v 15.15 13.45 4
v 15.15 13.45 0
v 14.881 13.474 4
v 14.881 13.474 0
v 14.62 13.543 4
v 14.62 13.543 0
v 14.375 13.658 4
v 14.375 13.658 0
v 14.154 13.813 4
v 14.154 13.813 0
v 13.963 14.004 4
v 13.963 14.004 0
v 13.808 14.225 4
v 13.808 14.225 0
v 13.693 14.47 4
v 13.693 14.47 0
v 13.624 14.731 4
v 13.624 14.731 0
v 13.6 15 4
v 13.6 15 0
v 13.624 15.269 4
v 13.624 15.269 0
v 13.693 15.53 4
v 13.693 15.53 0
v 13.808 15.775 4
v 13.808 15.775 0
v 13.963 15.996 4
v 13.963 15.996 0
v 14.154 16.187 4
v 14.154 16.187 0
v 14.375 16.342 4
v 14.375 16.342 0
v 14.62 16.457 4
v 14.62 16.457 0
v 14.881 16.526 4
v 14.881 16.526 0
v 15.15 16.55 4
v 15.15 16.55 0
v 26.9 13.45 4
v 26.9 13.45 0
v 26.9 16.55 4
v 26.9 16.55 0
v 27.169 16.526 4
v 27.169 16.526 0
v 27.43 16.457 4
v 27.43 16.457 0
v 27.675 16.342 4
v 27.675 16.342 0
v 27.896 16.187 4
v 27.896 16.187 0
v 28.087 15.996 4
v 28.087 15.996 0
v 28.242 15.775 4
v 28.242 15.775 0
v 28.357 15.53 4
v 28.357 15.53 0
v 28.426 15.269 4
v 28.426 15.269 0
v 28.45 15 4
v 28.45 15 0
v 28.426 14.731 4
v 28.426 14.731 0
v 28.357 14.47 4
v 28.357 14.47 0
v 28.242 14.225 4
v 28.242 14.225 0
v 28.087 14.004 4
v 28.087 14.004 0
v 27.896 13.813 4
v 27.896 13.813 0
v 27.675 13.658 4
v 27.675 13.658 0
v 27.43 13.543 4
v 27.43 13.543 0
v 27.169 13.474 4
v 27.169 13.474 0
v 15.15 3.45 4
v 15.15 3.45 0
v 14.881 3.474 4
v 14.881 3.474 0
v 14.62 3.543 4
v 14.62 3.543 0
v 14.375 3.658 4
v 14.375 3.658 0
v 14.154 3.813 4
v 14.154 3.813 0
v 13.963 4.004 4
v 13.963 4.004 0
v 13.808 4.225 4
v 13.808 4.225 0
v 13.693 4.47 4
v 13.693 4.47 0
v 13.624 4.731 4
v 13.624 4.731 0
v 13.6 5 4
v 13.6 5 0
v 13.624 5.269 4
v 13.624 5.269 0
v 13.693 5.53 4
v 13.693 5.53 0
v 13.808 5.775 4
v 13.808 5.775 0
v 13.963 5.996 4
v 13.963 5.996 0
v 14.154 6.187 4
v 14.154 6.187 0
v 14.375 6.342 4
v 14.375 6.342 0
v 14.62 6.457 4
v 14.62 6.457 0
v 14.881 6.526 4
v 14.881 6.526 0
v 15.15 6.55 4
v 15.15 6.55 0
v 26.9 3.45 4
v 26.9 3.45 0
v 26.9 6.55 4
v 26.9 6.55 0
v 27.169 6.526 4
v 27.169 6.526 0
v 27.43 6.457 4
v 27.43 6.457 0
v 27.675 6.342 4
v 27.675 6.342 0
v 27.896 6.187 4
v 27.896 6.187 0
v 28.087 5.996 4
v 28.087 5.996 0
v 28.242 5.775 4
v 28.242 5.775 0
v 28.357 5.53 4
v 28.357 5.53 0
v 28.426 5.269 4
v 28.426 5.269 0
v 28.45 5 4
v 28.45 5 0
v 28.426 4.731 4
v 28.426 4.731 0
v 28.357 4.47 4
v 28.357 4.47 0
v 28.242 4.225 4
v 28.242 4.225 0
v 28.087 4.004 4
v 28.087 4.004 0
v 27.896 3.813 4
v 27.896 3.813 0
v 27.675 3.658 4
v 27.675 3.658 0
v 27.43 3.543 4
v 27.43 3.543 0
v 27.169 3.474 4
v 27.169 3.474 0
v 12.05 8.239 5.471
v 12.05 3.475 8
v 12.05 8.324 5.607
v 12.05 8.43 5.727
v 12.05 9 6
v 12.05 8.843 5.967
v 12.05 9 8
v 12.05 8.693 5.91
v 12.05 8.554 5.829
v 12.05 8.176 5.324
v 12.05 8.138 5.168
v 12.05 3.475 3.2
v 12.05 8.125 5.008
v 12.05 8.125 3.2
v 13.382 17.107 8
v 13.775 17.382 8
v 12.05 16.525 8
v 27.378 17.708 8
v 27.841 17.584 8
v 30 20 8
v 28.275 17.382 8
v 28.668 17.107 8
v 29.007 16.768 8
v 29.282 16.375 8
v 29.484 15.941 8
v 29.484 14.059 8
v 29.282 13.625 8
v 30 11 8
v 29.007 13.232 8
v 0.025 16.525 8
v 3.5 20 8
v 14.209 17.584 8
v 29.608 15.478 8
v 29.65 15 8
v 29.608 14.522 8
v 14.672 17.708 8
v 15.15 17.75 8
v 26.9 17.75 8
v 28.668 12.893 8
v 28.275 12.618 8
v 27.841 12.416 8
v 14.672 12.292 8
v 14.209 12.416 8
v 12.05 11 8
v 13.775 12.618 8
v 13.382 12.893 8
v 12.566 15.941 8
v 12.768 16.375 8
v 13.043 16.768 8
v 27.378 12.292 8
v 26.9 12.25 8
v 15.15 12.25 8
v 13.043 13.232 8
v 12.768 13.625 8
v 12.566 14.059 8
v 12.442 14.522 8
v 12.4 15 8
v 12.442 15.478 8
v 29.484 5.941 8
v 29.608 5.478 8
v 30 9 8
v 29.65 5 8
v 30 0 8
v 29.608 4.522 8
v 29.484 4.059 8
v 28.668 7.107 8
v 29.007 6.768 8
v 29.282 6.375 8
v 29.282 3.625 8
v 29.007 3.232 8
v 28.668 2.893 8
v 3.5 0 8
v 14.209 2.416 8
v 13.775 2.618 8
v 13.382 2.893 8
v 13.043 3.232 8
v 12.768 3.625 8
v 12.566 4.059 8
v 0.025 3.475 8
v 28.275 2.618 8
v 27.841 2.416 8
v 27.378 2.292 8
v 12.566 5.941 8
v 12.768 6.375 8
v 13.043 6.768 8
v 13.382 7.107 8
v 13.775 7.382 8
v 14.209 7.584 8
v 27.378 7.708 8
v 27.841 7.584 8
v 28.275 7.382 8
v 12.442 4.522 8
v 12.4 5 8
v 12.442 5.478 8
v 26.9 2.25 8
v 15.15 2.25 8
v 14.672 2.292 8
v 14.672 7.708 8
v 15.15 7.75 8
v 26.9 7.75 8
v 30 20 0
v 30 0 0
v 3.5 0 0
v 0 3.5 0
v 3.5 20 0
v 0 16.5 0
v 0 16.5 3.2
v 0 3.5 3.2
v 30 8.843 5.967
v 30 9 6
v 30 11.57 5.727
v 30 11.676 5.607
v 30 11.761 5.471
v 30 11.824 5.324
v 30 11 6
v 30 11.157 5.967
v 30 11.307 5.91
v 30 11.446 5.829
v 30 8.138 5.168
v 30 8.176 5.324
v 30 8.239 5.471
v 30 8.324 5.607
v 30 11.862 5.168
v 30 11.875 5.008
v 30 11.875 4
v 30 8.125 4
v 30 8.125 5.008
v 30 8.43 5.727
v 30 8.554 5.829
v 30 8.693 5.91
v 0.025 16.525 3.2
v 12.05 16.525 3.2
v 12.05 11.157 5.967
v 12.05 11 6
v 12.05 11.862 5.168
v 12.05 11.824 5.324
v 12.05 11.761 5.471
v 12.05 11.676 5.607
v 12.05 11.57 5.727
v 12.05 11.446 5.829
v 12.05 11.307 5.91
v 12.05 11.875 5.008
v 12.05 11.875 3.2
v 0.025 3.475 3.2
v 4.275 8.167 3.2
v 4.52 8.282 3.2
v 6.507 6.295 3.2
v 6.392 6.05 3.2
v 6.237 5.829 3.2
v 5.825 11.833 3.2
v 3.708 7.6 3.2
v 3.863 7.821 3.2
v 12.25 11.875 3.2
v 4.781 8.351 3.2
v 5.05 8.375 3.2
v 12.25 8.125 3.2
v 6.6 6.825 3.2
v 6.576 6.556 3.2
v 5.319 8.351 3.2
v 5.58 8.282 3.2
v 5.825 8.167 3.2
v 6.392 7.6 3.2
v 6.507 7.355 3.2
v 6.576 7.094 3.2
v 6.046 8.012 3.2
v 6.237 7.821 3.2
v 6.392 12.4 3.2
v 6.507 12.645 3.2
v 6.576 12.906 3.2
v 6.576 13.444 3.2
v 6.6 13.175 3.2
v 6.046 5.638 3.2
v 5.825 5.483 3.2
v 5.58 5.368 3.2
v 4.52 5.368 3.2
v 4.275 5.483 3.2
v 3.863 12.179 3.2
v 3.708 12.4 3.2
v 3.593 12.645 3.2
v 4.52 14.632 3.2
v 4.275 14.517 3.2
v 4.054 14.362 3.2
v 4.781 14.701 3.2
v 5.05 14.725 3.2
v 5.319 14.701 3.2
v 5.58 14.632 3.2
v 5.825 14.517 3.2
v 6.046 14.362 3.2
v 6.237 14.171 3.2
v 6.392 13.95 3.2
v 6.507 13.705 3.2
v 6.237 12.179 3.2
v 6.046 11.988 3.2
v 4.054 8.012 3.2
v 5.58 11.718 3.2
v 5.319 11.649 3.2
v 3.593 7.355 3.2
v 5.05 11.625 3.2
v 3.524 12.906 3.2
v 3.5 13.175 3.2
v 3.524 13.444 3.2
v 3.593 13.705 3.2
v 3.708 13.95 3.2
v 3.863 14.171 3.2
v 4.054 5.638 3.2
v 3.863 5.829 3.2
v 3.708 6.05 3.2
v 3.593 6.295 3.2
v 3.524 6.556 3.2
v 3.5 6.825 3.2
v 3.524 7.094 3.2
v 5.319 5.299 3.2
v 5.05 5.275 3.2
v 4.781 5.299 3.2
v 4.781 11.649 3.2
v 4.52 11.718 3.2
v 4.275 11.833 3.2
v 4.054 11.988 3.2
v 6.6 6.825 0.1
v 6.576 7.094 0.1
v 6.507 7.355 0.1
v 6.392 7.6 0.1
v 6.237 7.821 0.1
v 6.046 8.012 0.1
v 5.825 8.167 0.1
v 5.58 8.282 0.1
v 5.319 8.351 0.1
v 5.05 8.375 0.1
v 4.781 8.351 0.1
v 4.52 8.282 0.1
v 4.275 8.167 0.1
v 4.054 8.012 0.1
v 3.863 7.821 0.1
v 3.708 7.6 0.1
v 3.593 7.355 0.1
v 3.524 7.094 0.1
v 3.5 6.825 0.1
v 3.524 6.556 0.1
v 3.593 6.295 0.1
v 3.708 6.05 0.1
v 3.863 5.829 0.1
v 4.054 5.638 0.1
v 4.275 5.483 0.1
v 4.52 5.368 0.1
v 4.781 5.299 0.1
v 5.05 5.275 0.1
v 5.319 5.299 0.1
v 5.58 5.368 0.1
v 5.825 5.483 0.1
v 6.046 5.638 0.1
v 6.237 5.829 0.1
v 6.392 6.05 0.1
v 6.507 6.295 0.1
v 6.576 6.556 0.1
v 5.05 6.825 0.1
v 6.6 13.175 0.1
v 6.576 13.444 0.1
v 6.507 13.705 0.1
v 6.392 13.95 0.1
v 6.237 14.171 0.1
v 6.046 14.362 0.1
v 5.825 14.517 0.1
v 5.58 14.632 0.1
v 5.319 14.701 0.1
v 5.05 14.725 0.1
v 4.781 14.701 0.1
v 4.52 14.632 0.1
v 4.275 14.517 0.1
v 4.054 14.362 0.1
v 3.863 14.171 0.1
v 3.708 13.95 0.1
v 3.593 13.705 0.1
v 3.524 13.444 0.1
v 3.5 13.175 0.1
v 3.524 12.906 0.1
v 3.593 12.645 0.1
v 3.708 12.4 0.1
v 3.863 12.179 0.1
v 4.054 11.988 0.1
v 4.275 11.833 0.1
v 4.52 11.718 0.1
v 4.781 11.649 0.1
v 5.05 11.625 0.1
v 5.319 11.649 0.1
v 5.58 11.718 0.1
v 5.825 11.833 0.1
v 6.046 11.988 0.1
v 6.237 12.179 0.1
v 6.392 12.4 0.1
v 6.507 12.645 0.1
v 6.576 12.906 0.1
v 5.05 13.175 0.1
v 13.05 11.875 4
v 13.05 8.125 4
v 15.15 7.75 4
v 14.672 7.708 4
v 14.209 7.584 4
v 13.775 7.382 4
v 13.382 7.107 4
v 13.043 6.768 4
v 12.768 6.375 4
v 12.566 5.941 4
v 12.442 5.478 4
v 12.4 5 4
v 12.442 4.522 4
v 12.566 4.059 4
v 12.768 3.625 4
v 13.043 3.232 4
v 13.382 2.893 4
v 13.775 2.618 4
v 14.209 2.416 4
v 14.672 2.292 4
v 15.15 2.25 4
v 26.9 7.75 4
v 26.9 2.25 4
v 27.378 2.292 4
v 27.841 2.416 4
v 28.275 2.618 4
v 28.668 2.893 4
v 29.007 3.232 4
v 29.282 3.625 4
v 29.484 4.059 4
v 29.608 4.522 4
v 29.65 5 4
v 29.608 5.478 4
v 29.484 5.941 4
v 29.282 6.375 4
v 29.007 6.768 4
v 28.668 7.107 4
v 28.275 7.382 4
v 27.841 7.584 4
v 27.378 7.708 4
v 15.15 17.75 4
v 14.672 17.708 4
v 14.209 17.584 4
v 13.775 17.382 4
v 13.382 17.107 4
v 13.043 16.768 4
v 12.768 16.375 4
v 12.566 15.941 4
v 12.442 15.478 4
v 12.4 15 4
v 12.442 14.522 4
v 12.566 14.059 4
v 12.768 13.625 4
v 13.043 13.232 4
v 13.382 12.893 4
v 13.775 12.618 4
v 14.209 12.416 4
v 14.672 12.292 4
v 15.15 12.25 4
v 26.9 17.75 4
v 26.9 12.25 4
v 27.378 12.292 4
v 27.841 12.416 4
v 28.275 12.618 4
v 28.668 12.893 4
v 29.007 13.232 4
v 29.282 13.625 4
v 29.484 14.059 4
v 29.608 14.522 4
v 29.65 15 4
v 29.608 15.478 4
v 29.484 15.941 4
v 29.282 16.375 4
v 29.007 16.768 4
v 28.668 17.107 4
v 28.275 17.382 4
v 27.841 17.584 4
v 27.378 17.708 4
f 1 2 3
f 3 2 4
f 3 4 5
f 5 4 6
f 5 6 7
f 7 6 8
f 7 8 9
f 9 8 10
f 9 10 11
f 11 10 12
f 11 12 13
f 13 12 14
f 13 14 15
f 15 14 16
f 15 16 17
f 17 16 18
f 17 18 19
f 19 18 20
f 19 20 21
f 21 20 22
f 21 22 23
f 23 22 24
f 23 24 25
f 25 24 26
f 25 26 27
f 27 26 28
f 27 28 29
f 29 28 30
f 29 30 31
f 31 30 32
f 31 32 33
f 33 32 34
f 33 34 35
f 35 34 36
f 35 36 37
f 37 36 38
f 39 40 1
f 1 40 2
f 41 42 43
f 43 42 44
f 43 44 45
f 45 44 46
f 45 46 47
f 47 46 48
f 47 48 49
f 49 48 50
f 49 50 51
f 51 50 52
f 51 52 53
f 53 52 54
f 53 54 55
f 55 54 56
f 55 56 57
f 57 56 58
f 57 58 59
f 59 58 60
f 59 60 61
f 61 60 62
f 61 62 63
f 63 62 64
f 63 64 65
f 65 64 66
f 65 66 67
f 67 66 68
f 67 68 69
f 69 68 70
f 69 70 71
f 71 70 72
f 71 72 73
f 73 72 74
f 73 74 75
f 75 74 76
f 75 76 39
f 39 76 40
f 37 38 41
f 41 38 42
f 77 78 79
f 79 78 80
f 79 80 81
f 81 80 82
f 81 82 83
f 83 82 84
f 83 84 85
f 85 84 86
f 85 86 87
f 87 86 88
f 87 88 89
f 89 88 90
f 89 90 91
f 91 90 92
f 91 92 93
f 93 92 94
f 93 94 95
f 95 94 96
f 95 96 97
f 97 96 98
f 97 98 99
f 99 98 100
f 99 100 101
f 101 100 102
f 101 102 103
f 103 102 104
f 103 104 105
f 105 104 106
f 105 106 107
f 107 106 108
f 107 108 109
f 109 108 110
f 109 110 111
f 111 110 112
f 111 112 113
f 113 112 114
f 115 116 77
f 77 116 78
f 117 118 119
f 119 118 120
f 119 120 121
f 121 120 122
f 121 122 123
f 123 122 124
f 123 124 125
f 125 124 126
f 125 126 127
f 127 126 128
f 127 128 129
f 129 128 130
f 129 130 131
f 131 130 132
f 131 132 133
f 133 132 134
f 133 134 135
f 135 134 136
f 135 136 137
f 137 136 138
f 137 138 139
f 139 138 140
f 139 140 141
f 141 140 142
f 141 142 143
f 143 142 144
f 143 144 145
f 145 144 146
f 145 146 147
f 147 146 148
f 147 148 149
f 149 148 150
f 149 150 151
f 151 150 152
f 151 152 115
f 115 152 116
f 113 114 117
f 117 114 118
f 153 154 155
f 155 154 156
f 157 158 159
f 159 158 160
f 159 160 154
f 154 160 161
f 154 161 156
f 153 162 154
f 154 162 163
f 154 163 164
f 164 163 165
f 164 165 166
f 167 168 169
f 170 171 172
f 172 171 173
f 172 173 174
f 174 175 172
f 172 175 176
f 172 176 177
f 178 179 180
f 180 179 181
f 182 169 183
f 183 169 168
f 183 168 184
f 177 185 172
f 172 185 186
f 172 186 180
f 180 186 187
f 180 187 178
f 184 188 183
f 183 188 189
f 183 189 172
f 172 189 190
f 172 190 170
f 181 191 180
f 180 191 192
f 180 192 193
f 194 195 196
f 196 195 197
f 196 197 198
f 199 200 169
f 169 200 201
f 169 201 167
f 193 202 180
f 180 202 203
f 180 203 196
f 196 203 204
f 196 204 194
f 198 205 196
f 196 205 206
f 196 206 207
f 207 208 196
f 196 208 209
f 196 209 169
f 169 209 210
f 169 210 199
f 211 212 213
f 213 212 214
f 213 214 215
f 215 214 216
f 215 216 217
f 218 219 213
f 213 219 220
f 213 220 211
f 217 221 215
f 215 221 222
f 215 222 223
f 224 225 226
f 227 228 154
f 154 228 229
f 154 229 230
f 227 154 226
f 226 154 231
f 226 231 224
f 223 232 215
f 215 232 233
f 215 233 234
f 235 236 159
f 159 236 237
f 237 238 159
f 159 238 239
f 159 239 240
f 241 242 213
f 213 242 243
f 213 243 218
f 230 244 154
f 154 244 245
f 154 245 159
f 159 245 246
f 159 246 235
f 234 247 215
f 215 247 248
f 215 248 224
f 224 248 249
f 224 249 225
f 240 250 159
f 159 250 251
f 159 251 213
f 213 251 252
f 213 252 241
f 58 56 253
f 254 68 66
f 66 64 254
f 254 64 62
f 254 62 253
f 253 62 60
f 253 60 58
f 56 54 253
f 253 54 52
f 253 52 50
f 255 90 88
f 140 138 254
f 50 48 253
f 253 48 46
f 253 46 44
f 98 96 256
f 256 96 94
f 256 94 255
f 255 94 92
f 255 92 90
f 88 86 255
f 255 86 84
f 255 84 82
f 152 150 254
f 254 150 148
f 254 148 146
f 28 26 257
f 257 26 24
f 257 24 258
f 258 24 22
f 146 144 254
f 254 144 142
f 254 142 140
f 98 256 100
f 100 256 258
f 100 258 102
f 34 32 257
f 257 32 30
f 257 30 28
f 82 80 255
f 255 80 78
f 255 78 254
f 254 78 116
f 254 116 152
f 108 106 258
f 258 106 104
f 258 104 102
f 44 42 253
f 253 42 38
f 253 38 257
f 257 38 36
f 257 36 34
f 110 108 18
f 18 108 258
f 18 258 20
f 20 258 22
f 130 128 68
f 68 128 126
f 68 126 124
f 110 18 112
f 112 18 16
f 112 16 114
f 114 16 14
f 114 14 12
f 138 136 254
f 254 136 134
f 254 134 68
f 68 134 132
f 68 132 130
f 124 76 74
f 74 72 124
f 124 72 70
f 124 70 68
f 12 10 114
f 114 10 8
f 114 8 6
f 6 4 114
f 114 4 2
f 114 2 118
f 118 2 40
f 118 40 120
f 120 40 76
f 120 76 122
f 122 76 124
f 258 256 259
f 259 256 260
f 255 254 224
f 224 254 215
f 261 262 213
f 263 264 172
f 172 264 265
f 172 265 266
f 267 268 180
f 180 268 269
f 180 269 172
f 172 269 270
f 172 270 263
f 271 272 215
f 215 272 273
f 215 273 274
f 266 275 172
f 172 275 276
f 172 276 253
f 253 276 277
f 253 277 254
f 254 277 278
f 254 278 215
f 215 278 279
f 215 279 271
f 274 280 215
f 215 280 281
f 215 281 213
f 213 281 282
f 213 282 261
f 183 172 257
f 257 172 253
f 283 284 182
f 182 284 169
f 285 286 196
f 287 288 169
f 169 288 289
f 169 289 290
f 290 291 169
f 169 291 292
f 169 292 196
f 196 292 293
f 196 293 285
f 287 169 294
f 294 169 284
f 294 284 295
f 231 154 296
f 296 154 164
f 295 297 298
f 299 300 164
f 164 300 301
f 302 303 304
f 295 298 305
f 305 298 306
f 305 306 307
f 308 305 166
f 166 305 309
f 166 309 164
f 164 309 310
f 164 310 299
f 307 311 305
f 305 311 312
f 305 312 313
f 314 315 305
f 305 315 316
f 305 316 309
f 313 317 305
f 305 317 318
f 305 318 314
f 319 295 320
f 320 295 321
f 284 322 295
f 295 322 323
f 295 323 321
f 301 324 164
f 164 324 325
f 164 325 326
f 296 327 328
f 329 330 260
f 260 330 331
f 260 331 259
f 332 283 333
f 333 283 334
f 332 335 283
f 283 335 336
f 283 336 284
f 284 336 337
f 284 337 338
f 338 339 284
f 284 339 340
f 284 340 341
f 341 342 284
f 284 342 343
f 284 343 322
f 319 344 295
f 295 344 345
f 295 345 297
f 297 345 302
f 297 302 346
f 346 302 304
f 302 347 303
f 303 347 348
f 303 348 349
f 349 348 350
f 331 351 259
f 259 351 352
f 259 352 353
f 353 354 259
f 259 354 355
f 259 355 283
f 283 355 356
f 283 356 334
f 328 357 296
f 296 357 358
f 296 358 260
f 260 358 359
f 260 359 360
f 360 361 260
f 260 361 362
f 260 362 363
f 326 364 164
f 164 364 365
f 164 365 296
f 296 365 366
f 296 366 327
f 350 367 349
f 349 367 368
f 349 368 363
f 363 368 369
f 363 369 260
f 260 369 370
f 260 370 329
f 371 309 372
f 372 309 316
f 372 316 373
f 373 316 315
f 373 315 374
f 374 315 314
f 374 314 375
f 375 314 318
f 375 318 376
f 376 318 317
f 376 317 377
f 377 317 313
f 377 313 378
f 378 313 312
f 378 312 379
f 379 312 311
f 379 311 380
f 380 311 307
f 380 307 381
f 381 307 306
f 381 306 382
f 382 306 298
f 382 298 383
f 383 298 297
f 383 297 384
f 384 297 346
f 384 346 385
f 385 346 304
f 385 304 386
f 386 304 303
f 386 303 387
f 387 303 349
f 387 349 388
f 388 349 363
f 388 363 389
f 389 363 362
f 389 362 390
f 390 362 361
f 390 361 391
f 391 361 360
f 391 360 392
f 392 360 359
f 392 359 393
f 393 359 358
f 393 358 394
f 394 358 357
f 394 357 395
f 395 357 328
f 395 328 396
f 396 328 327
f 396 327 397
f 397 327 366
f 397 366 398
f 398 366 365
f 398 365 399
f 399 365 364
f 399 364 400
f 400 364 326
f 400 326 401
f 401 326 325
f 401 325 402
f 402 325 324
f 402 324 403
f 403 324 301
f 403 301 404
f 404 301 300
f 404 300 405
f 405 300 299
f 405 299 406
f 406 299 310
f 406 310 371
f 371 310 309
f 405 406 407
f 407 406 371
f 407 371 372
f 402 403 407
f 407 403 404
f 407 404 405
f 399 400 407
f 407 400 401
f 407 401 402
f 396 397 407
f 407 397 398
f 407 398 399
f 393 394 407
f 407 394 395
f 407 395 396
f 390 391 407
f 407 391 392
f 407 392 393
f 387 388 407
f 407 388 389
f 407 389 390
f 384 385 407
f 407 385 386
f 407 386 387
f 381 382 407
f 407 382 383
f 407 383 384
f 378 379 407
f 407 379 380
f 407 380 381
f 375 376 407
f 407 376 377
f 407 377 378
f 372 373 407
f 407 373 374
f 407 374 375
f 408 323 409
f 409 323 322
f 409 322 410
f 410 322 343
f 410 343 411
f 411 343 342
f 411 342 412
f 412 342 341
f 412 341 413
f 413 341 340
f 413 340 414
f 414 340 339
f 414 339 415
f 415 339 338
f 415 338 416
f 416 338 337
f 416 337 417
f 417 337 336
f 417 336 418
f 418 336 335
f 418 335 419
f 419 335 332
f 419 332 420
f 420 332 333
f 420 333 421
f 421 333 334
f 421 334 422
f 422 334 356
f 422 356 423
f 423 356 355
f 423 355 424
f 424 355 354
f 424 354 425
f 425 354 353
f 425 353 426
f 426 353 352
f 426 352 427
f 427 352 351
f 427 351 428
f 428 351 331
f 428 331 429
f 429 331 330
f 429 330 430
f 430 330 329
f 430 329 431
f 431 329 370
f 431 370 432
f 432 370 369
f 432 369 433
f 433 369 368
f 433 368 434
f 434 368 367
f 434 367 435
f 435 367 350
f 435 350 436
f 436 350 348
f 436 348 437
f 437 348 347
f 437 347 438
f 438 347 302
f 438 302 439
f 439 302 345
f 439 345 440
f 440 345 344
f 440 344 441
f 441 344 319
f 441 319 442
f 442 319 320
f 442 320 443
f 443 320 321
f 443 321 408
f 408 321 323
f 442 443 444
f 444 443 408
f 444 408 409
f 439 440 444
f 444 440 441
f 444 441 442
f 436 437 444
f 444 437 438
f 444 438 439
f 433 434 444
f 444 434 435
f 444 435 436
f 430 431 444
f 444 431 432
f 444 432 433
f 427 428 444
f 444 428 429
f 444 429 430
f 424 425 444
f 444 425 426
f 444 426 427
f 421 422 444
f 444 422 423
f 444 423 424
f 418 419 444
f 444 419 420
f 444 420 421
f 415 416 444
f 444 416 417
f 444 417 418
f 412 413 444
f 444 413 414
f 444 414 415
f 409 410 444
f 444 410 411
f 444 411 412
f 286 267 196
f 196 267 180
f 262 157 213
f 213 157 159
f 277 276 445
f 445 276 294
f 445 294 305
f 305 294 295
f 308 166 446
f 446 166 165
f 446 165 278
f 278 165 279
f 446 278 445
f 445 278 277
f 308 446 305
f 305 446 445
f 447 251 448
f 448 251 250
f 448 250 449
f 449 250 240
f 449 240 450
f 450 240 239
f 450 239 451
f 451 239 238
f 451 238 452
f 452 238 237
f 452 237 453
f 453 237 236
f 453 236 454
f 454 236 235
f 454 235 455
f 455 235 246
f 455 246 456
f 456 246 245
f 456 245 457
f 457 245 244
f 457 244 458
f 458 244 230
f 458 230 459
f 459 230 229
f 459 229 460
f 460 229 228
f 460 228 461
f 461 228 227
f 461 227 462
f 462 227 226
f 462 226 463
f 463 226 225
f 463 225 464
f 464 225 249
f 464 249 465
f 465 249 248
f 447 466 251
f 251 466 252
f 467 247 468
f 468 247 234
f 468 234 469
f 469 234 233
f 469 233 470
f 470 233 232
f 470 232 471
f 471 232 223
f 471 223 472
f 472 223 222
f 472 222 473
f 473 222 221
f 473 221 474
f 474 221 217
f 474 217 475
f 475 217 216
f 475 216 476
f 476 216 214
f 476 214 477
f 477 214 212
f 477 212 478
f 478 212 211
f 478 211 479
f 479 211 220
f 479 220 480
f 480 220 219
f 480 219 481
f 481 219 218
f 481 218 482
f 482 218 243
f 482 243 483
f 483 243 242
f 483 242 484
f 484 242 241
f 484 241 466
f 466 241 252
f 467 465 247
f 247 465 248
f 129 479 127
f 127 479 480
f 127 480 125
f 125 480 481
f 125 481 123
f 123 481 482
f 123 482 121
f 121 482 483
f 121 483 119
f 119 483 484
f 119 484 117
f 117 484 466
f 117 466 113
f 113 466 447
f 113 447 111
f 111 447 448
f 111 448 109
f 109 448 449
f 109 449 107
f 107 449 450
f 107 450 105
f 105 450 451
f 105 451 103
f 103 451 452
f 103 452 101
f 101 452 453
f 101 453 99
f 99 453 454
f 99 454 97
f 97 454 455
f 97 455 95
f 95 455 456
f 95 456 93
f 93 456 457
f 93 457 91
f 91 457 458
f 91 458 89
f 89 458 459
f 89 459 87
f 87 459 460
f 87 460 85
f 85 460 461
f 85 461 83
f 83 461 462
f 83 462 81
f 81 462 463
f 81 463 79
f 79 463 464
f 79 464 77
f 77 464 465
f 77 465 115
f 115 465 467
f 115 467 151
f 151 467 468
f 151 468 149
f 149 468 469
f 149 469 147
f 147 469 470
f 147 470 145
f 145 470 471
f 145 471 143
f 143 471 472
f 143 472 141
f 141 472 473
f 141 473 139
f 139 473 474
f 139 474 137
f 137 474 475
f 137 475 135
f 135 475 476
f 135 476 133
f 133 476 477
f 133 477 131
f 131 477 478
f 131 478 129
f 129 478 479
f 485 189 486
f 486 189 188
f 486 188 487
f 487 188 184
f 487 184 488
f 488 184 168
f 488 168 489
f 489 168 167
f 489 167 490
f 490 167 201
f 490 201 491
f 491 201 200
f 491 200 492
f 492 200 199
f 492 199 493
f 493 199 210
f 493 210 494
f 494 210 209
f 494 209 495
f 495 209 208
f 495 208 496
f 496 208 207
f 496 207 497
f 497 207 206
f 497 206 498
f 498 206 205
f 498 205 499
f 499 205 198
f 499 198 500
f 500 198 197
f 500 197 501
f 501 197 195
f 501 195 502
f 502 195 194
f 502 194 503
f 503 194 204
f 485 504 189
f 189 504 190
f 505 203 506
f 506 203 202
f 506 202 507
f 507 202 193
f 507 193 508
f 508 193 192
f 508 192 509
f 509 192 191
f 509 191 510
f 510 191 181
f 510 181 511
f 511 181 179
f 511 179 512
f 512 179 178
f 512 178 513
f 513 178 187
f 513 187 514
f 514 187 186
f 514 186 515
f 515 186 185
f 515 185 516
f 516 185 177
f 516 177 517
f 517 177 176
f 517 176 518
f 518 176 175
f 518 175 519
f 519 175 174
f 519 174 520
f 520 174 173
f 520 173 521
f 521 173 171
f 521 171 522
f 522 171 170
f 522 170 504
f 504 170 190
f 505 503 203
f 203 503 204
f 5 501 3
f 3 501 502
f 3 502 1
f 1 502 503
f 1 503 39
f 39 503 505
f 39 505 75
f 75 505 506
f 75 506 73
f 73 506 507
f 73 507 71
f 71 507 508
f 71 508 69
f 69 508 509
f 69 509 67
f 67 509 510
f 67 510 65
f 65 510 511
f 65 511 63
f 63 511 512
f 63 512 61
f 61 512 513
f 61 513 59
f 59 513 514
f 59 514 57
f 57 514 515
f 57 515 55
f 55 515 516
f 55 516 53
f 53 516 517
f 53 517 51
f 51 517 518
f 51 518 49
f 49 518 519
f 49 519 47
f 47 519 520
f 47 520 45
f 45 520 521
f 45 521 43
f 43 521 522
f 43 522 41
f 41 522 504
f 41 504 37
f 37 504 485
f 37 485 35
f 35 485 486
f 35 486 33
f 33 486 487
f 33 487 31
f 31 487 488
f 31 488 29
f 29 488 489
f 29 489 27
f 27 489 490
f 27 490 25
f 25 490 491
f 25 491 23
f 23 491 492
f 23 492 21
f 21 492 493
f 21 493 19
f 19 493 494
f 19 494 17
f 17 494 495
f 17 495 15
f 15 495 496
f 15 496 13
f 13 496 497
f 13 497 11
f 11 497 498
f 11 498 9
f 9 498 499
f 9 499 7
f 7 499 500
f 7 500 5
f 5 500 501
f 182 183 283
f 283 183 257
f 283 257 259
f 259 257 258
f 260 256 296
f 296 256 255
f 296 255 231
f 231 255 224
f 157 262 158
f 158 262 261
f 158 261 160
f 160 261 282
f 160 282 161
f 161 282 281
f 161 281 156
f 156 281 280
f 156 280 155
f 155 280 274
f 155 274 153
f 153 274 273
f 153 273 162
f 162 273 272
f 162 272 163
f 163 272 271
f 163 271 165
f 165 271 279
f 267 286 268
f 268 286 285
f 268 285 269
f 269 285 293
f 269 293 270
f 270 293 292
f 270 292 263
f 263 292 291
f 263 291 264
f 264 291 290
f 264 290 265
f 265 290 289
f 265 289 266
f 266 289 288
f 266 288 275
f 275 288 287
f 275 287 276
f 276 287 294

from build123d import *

# Parameters (mm, degrees)
PROFILESKETCH3_W                           = 30
PROFILESKETCH3_H                           = 20
PROFILEBOSS_EXTRUDE1_DEPTH                 = 8
MICROSWITCHCUTSKETCH4_W                    = 12.05
MICROSWITCHCUTSKETCH4_H                    = 13.05
MICROSWITCHCUT_EXTRUDE1_DEPTH              = 4.8
SKETCH5_R                                  = 1.55
MICROSWITCHMOUNTINGHOLESCUT_EXTRUDE2_DEPTH = 3.1
SMALLCHANNELCABLESKETCH6_W                 = 17.95
SMALLCHANNELCABLESKETCH6_H                 = 2
SMALLCHANNELCABLECUT_EXTRUDE3_DEPTH        = 2
LARGECHANNELCABLESKETCH7_W                 = 17.95
LARGECHANNELCABLESKETCH7_H                 = 3.75
LARGECHANNELCABLECUT_EXTRUDE4_DEPTH        = 2
CHAMFER1_SIZE                              = 1
MOUNTSLOTBORECUT_EXTRUDE1_DEPTH            = 4
CHAMFER2_SIZE                              = 3.5
FILLET3_R                                  = 1


with BuildPart() as part:
    # ProfileSketch3 → ProfileBoss-Extrude1 (new body)
    with BuildSketch(Plane.XY):
        with Locations((15, 10)):
            Rectangle(PROFILESKETCH3_W, PROFILESKETCH3_H)
        with BuildLine():
            Line((15.15, 16.55), (26.9, 16.55))
            ThreePointArc((26.9, 16.55), (28.45, 15), (26.9, 13.45))
            Line((26.9, 13.45), (15.15, 13.45))
            ThreePointArc((15.15, 13.45), (13.6, 15), (15.15, 16.55))
        make_face(mode=Mode.SUBTRACT)
        with BuildLine():
            Line((15.15, 6.55), (26.9, 6.55))
            ThreePointArc((26.9, 6.55), (28.45, 5), (26.9, 3.45))
            Line((26.9, 3.45), (15.15, 3.45))
            ThreePointArc((15.15, 3.45), (13.6, 5), (15.15, 6.55))
        make_face(mode=Mode.SUBTRACT)
    extrude(amount=PROFILEBOSS_EXTRUDE1_DEPTH)

    # MicroSwitchCutSketch4 → MicroSwitchCut-Extrude1 (cut)
    with BuildSketch(Plane.XY.offset(8)):
        with Locations((6.025, 10)):
            Rectangle(MICROSWITCHCUTSKETCH4_W, MICROSWITCHCUTSKETCH4_H)
    extrude(amount=-MICROSWITCHCUT_EXTRUDE1_DEPTH, mode=Mode.SUBTRACT)

    # Sketch5 → MicroSwitchMountingHolesCut-Extrude2 (cut)
    with BuildSketch(Plane.XY.offset(3.2)):
        with Locations((5.05, 13.175)):
            Circle(SKETCH5_R)
        with Locations((5.05, 6.825)):
            Circle(SKETCH5_R)
    extrude(amount=-MICROSWITCHMOUNTINGHOLESCUT_EXTRUDE2_DEPTH, mode=Mode.SUBTRACT)

    # SmallChannelCableSketch6 → SmallChannelCableCut-Extrude3 (cut)
    with BuildSketch(Plane.XY.offset(8)):
        with Locations((21.025, 10)):
            Rectangle(SMALLCHANNELCABLESKETCH6_W, SMALLCHANNELCABLESKETCH6_H)
    extrude(amount=-SMALLCHANNELCABLECUT_EXTRUDE3_DEPTH, mode=Mode.SUBTRACT)

    # LargeChannelCableSketch7 → LargeChannelCableCut-Extrude4 (cut)
    with BuildSketch(Plane.XY.offset(6)):
        with Locations((21.025, 10)):
            Rectangle(LARGECHANNELCABLESKETCH7_W, LARGECHANNELCABLESKETCH7_H)
    extrude(amount=-LARGECHANNELCABLECUT_EXTRUDE4_DEPTH, mode=Mode.SUBTRACT)

    # Chamfer1
    # the kernel refuses this chamfer: 1 mm, written as the material it takes off along each edge
    with BuildSketch(Plane(origin=(12.05, 8.125, 4), x_dir=(0.9996219169112968, 0, 0.02749587661058651), z_dir=(0, 1, 0))) as chamfer1_piece_1_section:
        Polygon((CHAMFER1_SIZE * 0.999621916911, CHAMFER1_SIZE * 0.0274958766106), (-CHAMFER1_SIZE * 0.0274958766106, CHAMFER1_SIZE * 0.999621916911), (0, 0), align=None)
    chamfer1_piece_1 = extrude(amount=3.75, mode=Mode.PRIVATE)
    chamfer1_piece_1 = split(chamfer1_piece_1, bisect_by=Plane(origin=(12.395718412, 10, 3.2), z_dir=(0, 0, 1)), keep=Keep.TOP, mode=Mode.PRIVATE)
    add(chamfer1_piece_1, mode=Mode.SUBTRACT)

    # Sketch6 → MountSLotBoreCut-Extrude1 (cut)
    with BuildSketch(Plane.XY.offset(8)):
        with BuildLine():
            Line((15.15, 17.75), (26.9, 17.75))
            ThreePointArc((26.9, 17.75), (29.65, 15), (26.9, 12.25))
            Line((26.9, 12.25), (15.15, 12.25))
            ThreePointArc((15.15, 12.25), (12.4, 15), (15.15, 17.75))
        make_face()
        with BuildLine():
            Line((15.15, 7.75), (26.9, 7.75))
            ThreePointArc((26.9, 7.75), (29.65, 5), (26.9, 2.25))
            Line((26.9, 2.25), (15.15, 2.25))
            ThreePointArc((15.15, 2.25), (12.4, 5), (15.15, 7.75))
        make_face()
    extrude(amount=-MOUNTSLOTBORECUT_EXTRUDE1_DEPTH, mode=Mode.SUBTRACT)

    # Chamfer2
    chamfer2_edges = [part.edges().sort_by_distance(p)[0] for p in [
        (0, 20, 4),
        (0, 0, 4),
    ]]
    chamfer(chamfer2_edges, length=CHAMFER2_SIZE)

    # Fillet3
    # the kernel refuses this fillet: 1 mm, written as the material it adds along each edge
    with BuildSketch(Plane(origin=(12.05, 11.875, 6), x_dir=(0, 0, -1), z_dir=(1, 0, 0))) as fillet3_piece_1:
        with BuildLine():
            CenterArc((0.992156742, -1), FILLET3_R, 90, 82.819244219)
            Line((0, -0.875), (-0.019843135, -0.8725))
            ThreePointArc((-0.019843135, -0.8725), (-0.02, -0.4375), (-0.02, 0))
            Line((-0.02, 0), (0, 0.02))
            Line((0, 0.02), (0.992156742, 0.02))
            Line((0.992156742, 0.02), (0.992156742, 0))
        make_face()
    extrude(amount=17.95)
    with BuildSketch(Plane(origin=(30, 8.125, 6), x_dir=(0, 1, 0), z_dir=(-1, 0, 0))) as fillet3_piece_2:
        with BuildLine():
            CenterArc((1, 0.992156742), FILLET3_R, 180, 82.819244219)
            Line((0, 0.992156742), (-0.02, 0.992156742))
            Line((-0.02, 0.992156742), (-0.02, 0))
            Line((-0.02, 0), (0, -0.02))
            ThreePointArc((0, -0.02), (0.4375, -0.02), (0.8725, -0.019843135))
            Line((0.8725, -0.019843135), (0.875, 0))
        make_face()
    extrude(amount=17.95)


solid = part.part
